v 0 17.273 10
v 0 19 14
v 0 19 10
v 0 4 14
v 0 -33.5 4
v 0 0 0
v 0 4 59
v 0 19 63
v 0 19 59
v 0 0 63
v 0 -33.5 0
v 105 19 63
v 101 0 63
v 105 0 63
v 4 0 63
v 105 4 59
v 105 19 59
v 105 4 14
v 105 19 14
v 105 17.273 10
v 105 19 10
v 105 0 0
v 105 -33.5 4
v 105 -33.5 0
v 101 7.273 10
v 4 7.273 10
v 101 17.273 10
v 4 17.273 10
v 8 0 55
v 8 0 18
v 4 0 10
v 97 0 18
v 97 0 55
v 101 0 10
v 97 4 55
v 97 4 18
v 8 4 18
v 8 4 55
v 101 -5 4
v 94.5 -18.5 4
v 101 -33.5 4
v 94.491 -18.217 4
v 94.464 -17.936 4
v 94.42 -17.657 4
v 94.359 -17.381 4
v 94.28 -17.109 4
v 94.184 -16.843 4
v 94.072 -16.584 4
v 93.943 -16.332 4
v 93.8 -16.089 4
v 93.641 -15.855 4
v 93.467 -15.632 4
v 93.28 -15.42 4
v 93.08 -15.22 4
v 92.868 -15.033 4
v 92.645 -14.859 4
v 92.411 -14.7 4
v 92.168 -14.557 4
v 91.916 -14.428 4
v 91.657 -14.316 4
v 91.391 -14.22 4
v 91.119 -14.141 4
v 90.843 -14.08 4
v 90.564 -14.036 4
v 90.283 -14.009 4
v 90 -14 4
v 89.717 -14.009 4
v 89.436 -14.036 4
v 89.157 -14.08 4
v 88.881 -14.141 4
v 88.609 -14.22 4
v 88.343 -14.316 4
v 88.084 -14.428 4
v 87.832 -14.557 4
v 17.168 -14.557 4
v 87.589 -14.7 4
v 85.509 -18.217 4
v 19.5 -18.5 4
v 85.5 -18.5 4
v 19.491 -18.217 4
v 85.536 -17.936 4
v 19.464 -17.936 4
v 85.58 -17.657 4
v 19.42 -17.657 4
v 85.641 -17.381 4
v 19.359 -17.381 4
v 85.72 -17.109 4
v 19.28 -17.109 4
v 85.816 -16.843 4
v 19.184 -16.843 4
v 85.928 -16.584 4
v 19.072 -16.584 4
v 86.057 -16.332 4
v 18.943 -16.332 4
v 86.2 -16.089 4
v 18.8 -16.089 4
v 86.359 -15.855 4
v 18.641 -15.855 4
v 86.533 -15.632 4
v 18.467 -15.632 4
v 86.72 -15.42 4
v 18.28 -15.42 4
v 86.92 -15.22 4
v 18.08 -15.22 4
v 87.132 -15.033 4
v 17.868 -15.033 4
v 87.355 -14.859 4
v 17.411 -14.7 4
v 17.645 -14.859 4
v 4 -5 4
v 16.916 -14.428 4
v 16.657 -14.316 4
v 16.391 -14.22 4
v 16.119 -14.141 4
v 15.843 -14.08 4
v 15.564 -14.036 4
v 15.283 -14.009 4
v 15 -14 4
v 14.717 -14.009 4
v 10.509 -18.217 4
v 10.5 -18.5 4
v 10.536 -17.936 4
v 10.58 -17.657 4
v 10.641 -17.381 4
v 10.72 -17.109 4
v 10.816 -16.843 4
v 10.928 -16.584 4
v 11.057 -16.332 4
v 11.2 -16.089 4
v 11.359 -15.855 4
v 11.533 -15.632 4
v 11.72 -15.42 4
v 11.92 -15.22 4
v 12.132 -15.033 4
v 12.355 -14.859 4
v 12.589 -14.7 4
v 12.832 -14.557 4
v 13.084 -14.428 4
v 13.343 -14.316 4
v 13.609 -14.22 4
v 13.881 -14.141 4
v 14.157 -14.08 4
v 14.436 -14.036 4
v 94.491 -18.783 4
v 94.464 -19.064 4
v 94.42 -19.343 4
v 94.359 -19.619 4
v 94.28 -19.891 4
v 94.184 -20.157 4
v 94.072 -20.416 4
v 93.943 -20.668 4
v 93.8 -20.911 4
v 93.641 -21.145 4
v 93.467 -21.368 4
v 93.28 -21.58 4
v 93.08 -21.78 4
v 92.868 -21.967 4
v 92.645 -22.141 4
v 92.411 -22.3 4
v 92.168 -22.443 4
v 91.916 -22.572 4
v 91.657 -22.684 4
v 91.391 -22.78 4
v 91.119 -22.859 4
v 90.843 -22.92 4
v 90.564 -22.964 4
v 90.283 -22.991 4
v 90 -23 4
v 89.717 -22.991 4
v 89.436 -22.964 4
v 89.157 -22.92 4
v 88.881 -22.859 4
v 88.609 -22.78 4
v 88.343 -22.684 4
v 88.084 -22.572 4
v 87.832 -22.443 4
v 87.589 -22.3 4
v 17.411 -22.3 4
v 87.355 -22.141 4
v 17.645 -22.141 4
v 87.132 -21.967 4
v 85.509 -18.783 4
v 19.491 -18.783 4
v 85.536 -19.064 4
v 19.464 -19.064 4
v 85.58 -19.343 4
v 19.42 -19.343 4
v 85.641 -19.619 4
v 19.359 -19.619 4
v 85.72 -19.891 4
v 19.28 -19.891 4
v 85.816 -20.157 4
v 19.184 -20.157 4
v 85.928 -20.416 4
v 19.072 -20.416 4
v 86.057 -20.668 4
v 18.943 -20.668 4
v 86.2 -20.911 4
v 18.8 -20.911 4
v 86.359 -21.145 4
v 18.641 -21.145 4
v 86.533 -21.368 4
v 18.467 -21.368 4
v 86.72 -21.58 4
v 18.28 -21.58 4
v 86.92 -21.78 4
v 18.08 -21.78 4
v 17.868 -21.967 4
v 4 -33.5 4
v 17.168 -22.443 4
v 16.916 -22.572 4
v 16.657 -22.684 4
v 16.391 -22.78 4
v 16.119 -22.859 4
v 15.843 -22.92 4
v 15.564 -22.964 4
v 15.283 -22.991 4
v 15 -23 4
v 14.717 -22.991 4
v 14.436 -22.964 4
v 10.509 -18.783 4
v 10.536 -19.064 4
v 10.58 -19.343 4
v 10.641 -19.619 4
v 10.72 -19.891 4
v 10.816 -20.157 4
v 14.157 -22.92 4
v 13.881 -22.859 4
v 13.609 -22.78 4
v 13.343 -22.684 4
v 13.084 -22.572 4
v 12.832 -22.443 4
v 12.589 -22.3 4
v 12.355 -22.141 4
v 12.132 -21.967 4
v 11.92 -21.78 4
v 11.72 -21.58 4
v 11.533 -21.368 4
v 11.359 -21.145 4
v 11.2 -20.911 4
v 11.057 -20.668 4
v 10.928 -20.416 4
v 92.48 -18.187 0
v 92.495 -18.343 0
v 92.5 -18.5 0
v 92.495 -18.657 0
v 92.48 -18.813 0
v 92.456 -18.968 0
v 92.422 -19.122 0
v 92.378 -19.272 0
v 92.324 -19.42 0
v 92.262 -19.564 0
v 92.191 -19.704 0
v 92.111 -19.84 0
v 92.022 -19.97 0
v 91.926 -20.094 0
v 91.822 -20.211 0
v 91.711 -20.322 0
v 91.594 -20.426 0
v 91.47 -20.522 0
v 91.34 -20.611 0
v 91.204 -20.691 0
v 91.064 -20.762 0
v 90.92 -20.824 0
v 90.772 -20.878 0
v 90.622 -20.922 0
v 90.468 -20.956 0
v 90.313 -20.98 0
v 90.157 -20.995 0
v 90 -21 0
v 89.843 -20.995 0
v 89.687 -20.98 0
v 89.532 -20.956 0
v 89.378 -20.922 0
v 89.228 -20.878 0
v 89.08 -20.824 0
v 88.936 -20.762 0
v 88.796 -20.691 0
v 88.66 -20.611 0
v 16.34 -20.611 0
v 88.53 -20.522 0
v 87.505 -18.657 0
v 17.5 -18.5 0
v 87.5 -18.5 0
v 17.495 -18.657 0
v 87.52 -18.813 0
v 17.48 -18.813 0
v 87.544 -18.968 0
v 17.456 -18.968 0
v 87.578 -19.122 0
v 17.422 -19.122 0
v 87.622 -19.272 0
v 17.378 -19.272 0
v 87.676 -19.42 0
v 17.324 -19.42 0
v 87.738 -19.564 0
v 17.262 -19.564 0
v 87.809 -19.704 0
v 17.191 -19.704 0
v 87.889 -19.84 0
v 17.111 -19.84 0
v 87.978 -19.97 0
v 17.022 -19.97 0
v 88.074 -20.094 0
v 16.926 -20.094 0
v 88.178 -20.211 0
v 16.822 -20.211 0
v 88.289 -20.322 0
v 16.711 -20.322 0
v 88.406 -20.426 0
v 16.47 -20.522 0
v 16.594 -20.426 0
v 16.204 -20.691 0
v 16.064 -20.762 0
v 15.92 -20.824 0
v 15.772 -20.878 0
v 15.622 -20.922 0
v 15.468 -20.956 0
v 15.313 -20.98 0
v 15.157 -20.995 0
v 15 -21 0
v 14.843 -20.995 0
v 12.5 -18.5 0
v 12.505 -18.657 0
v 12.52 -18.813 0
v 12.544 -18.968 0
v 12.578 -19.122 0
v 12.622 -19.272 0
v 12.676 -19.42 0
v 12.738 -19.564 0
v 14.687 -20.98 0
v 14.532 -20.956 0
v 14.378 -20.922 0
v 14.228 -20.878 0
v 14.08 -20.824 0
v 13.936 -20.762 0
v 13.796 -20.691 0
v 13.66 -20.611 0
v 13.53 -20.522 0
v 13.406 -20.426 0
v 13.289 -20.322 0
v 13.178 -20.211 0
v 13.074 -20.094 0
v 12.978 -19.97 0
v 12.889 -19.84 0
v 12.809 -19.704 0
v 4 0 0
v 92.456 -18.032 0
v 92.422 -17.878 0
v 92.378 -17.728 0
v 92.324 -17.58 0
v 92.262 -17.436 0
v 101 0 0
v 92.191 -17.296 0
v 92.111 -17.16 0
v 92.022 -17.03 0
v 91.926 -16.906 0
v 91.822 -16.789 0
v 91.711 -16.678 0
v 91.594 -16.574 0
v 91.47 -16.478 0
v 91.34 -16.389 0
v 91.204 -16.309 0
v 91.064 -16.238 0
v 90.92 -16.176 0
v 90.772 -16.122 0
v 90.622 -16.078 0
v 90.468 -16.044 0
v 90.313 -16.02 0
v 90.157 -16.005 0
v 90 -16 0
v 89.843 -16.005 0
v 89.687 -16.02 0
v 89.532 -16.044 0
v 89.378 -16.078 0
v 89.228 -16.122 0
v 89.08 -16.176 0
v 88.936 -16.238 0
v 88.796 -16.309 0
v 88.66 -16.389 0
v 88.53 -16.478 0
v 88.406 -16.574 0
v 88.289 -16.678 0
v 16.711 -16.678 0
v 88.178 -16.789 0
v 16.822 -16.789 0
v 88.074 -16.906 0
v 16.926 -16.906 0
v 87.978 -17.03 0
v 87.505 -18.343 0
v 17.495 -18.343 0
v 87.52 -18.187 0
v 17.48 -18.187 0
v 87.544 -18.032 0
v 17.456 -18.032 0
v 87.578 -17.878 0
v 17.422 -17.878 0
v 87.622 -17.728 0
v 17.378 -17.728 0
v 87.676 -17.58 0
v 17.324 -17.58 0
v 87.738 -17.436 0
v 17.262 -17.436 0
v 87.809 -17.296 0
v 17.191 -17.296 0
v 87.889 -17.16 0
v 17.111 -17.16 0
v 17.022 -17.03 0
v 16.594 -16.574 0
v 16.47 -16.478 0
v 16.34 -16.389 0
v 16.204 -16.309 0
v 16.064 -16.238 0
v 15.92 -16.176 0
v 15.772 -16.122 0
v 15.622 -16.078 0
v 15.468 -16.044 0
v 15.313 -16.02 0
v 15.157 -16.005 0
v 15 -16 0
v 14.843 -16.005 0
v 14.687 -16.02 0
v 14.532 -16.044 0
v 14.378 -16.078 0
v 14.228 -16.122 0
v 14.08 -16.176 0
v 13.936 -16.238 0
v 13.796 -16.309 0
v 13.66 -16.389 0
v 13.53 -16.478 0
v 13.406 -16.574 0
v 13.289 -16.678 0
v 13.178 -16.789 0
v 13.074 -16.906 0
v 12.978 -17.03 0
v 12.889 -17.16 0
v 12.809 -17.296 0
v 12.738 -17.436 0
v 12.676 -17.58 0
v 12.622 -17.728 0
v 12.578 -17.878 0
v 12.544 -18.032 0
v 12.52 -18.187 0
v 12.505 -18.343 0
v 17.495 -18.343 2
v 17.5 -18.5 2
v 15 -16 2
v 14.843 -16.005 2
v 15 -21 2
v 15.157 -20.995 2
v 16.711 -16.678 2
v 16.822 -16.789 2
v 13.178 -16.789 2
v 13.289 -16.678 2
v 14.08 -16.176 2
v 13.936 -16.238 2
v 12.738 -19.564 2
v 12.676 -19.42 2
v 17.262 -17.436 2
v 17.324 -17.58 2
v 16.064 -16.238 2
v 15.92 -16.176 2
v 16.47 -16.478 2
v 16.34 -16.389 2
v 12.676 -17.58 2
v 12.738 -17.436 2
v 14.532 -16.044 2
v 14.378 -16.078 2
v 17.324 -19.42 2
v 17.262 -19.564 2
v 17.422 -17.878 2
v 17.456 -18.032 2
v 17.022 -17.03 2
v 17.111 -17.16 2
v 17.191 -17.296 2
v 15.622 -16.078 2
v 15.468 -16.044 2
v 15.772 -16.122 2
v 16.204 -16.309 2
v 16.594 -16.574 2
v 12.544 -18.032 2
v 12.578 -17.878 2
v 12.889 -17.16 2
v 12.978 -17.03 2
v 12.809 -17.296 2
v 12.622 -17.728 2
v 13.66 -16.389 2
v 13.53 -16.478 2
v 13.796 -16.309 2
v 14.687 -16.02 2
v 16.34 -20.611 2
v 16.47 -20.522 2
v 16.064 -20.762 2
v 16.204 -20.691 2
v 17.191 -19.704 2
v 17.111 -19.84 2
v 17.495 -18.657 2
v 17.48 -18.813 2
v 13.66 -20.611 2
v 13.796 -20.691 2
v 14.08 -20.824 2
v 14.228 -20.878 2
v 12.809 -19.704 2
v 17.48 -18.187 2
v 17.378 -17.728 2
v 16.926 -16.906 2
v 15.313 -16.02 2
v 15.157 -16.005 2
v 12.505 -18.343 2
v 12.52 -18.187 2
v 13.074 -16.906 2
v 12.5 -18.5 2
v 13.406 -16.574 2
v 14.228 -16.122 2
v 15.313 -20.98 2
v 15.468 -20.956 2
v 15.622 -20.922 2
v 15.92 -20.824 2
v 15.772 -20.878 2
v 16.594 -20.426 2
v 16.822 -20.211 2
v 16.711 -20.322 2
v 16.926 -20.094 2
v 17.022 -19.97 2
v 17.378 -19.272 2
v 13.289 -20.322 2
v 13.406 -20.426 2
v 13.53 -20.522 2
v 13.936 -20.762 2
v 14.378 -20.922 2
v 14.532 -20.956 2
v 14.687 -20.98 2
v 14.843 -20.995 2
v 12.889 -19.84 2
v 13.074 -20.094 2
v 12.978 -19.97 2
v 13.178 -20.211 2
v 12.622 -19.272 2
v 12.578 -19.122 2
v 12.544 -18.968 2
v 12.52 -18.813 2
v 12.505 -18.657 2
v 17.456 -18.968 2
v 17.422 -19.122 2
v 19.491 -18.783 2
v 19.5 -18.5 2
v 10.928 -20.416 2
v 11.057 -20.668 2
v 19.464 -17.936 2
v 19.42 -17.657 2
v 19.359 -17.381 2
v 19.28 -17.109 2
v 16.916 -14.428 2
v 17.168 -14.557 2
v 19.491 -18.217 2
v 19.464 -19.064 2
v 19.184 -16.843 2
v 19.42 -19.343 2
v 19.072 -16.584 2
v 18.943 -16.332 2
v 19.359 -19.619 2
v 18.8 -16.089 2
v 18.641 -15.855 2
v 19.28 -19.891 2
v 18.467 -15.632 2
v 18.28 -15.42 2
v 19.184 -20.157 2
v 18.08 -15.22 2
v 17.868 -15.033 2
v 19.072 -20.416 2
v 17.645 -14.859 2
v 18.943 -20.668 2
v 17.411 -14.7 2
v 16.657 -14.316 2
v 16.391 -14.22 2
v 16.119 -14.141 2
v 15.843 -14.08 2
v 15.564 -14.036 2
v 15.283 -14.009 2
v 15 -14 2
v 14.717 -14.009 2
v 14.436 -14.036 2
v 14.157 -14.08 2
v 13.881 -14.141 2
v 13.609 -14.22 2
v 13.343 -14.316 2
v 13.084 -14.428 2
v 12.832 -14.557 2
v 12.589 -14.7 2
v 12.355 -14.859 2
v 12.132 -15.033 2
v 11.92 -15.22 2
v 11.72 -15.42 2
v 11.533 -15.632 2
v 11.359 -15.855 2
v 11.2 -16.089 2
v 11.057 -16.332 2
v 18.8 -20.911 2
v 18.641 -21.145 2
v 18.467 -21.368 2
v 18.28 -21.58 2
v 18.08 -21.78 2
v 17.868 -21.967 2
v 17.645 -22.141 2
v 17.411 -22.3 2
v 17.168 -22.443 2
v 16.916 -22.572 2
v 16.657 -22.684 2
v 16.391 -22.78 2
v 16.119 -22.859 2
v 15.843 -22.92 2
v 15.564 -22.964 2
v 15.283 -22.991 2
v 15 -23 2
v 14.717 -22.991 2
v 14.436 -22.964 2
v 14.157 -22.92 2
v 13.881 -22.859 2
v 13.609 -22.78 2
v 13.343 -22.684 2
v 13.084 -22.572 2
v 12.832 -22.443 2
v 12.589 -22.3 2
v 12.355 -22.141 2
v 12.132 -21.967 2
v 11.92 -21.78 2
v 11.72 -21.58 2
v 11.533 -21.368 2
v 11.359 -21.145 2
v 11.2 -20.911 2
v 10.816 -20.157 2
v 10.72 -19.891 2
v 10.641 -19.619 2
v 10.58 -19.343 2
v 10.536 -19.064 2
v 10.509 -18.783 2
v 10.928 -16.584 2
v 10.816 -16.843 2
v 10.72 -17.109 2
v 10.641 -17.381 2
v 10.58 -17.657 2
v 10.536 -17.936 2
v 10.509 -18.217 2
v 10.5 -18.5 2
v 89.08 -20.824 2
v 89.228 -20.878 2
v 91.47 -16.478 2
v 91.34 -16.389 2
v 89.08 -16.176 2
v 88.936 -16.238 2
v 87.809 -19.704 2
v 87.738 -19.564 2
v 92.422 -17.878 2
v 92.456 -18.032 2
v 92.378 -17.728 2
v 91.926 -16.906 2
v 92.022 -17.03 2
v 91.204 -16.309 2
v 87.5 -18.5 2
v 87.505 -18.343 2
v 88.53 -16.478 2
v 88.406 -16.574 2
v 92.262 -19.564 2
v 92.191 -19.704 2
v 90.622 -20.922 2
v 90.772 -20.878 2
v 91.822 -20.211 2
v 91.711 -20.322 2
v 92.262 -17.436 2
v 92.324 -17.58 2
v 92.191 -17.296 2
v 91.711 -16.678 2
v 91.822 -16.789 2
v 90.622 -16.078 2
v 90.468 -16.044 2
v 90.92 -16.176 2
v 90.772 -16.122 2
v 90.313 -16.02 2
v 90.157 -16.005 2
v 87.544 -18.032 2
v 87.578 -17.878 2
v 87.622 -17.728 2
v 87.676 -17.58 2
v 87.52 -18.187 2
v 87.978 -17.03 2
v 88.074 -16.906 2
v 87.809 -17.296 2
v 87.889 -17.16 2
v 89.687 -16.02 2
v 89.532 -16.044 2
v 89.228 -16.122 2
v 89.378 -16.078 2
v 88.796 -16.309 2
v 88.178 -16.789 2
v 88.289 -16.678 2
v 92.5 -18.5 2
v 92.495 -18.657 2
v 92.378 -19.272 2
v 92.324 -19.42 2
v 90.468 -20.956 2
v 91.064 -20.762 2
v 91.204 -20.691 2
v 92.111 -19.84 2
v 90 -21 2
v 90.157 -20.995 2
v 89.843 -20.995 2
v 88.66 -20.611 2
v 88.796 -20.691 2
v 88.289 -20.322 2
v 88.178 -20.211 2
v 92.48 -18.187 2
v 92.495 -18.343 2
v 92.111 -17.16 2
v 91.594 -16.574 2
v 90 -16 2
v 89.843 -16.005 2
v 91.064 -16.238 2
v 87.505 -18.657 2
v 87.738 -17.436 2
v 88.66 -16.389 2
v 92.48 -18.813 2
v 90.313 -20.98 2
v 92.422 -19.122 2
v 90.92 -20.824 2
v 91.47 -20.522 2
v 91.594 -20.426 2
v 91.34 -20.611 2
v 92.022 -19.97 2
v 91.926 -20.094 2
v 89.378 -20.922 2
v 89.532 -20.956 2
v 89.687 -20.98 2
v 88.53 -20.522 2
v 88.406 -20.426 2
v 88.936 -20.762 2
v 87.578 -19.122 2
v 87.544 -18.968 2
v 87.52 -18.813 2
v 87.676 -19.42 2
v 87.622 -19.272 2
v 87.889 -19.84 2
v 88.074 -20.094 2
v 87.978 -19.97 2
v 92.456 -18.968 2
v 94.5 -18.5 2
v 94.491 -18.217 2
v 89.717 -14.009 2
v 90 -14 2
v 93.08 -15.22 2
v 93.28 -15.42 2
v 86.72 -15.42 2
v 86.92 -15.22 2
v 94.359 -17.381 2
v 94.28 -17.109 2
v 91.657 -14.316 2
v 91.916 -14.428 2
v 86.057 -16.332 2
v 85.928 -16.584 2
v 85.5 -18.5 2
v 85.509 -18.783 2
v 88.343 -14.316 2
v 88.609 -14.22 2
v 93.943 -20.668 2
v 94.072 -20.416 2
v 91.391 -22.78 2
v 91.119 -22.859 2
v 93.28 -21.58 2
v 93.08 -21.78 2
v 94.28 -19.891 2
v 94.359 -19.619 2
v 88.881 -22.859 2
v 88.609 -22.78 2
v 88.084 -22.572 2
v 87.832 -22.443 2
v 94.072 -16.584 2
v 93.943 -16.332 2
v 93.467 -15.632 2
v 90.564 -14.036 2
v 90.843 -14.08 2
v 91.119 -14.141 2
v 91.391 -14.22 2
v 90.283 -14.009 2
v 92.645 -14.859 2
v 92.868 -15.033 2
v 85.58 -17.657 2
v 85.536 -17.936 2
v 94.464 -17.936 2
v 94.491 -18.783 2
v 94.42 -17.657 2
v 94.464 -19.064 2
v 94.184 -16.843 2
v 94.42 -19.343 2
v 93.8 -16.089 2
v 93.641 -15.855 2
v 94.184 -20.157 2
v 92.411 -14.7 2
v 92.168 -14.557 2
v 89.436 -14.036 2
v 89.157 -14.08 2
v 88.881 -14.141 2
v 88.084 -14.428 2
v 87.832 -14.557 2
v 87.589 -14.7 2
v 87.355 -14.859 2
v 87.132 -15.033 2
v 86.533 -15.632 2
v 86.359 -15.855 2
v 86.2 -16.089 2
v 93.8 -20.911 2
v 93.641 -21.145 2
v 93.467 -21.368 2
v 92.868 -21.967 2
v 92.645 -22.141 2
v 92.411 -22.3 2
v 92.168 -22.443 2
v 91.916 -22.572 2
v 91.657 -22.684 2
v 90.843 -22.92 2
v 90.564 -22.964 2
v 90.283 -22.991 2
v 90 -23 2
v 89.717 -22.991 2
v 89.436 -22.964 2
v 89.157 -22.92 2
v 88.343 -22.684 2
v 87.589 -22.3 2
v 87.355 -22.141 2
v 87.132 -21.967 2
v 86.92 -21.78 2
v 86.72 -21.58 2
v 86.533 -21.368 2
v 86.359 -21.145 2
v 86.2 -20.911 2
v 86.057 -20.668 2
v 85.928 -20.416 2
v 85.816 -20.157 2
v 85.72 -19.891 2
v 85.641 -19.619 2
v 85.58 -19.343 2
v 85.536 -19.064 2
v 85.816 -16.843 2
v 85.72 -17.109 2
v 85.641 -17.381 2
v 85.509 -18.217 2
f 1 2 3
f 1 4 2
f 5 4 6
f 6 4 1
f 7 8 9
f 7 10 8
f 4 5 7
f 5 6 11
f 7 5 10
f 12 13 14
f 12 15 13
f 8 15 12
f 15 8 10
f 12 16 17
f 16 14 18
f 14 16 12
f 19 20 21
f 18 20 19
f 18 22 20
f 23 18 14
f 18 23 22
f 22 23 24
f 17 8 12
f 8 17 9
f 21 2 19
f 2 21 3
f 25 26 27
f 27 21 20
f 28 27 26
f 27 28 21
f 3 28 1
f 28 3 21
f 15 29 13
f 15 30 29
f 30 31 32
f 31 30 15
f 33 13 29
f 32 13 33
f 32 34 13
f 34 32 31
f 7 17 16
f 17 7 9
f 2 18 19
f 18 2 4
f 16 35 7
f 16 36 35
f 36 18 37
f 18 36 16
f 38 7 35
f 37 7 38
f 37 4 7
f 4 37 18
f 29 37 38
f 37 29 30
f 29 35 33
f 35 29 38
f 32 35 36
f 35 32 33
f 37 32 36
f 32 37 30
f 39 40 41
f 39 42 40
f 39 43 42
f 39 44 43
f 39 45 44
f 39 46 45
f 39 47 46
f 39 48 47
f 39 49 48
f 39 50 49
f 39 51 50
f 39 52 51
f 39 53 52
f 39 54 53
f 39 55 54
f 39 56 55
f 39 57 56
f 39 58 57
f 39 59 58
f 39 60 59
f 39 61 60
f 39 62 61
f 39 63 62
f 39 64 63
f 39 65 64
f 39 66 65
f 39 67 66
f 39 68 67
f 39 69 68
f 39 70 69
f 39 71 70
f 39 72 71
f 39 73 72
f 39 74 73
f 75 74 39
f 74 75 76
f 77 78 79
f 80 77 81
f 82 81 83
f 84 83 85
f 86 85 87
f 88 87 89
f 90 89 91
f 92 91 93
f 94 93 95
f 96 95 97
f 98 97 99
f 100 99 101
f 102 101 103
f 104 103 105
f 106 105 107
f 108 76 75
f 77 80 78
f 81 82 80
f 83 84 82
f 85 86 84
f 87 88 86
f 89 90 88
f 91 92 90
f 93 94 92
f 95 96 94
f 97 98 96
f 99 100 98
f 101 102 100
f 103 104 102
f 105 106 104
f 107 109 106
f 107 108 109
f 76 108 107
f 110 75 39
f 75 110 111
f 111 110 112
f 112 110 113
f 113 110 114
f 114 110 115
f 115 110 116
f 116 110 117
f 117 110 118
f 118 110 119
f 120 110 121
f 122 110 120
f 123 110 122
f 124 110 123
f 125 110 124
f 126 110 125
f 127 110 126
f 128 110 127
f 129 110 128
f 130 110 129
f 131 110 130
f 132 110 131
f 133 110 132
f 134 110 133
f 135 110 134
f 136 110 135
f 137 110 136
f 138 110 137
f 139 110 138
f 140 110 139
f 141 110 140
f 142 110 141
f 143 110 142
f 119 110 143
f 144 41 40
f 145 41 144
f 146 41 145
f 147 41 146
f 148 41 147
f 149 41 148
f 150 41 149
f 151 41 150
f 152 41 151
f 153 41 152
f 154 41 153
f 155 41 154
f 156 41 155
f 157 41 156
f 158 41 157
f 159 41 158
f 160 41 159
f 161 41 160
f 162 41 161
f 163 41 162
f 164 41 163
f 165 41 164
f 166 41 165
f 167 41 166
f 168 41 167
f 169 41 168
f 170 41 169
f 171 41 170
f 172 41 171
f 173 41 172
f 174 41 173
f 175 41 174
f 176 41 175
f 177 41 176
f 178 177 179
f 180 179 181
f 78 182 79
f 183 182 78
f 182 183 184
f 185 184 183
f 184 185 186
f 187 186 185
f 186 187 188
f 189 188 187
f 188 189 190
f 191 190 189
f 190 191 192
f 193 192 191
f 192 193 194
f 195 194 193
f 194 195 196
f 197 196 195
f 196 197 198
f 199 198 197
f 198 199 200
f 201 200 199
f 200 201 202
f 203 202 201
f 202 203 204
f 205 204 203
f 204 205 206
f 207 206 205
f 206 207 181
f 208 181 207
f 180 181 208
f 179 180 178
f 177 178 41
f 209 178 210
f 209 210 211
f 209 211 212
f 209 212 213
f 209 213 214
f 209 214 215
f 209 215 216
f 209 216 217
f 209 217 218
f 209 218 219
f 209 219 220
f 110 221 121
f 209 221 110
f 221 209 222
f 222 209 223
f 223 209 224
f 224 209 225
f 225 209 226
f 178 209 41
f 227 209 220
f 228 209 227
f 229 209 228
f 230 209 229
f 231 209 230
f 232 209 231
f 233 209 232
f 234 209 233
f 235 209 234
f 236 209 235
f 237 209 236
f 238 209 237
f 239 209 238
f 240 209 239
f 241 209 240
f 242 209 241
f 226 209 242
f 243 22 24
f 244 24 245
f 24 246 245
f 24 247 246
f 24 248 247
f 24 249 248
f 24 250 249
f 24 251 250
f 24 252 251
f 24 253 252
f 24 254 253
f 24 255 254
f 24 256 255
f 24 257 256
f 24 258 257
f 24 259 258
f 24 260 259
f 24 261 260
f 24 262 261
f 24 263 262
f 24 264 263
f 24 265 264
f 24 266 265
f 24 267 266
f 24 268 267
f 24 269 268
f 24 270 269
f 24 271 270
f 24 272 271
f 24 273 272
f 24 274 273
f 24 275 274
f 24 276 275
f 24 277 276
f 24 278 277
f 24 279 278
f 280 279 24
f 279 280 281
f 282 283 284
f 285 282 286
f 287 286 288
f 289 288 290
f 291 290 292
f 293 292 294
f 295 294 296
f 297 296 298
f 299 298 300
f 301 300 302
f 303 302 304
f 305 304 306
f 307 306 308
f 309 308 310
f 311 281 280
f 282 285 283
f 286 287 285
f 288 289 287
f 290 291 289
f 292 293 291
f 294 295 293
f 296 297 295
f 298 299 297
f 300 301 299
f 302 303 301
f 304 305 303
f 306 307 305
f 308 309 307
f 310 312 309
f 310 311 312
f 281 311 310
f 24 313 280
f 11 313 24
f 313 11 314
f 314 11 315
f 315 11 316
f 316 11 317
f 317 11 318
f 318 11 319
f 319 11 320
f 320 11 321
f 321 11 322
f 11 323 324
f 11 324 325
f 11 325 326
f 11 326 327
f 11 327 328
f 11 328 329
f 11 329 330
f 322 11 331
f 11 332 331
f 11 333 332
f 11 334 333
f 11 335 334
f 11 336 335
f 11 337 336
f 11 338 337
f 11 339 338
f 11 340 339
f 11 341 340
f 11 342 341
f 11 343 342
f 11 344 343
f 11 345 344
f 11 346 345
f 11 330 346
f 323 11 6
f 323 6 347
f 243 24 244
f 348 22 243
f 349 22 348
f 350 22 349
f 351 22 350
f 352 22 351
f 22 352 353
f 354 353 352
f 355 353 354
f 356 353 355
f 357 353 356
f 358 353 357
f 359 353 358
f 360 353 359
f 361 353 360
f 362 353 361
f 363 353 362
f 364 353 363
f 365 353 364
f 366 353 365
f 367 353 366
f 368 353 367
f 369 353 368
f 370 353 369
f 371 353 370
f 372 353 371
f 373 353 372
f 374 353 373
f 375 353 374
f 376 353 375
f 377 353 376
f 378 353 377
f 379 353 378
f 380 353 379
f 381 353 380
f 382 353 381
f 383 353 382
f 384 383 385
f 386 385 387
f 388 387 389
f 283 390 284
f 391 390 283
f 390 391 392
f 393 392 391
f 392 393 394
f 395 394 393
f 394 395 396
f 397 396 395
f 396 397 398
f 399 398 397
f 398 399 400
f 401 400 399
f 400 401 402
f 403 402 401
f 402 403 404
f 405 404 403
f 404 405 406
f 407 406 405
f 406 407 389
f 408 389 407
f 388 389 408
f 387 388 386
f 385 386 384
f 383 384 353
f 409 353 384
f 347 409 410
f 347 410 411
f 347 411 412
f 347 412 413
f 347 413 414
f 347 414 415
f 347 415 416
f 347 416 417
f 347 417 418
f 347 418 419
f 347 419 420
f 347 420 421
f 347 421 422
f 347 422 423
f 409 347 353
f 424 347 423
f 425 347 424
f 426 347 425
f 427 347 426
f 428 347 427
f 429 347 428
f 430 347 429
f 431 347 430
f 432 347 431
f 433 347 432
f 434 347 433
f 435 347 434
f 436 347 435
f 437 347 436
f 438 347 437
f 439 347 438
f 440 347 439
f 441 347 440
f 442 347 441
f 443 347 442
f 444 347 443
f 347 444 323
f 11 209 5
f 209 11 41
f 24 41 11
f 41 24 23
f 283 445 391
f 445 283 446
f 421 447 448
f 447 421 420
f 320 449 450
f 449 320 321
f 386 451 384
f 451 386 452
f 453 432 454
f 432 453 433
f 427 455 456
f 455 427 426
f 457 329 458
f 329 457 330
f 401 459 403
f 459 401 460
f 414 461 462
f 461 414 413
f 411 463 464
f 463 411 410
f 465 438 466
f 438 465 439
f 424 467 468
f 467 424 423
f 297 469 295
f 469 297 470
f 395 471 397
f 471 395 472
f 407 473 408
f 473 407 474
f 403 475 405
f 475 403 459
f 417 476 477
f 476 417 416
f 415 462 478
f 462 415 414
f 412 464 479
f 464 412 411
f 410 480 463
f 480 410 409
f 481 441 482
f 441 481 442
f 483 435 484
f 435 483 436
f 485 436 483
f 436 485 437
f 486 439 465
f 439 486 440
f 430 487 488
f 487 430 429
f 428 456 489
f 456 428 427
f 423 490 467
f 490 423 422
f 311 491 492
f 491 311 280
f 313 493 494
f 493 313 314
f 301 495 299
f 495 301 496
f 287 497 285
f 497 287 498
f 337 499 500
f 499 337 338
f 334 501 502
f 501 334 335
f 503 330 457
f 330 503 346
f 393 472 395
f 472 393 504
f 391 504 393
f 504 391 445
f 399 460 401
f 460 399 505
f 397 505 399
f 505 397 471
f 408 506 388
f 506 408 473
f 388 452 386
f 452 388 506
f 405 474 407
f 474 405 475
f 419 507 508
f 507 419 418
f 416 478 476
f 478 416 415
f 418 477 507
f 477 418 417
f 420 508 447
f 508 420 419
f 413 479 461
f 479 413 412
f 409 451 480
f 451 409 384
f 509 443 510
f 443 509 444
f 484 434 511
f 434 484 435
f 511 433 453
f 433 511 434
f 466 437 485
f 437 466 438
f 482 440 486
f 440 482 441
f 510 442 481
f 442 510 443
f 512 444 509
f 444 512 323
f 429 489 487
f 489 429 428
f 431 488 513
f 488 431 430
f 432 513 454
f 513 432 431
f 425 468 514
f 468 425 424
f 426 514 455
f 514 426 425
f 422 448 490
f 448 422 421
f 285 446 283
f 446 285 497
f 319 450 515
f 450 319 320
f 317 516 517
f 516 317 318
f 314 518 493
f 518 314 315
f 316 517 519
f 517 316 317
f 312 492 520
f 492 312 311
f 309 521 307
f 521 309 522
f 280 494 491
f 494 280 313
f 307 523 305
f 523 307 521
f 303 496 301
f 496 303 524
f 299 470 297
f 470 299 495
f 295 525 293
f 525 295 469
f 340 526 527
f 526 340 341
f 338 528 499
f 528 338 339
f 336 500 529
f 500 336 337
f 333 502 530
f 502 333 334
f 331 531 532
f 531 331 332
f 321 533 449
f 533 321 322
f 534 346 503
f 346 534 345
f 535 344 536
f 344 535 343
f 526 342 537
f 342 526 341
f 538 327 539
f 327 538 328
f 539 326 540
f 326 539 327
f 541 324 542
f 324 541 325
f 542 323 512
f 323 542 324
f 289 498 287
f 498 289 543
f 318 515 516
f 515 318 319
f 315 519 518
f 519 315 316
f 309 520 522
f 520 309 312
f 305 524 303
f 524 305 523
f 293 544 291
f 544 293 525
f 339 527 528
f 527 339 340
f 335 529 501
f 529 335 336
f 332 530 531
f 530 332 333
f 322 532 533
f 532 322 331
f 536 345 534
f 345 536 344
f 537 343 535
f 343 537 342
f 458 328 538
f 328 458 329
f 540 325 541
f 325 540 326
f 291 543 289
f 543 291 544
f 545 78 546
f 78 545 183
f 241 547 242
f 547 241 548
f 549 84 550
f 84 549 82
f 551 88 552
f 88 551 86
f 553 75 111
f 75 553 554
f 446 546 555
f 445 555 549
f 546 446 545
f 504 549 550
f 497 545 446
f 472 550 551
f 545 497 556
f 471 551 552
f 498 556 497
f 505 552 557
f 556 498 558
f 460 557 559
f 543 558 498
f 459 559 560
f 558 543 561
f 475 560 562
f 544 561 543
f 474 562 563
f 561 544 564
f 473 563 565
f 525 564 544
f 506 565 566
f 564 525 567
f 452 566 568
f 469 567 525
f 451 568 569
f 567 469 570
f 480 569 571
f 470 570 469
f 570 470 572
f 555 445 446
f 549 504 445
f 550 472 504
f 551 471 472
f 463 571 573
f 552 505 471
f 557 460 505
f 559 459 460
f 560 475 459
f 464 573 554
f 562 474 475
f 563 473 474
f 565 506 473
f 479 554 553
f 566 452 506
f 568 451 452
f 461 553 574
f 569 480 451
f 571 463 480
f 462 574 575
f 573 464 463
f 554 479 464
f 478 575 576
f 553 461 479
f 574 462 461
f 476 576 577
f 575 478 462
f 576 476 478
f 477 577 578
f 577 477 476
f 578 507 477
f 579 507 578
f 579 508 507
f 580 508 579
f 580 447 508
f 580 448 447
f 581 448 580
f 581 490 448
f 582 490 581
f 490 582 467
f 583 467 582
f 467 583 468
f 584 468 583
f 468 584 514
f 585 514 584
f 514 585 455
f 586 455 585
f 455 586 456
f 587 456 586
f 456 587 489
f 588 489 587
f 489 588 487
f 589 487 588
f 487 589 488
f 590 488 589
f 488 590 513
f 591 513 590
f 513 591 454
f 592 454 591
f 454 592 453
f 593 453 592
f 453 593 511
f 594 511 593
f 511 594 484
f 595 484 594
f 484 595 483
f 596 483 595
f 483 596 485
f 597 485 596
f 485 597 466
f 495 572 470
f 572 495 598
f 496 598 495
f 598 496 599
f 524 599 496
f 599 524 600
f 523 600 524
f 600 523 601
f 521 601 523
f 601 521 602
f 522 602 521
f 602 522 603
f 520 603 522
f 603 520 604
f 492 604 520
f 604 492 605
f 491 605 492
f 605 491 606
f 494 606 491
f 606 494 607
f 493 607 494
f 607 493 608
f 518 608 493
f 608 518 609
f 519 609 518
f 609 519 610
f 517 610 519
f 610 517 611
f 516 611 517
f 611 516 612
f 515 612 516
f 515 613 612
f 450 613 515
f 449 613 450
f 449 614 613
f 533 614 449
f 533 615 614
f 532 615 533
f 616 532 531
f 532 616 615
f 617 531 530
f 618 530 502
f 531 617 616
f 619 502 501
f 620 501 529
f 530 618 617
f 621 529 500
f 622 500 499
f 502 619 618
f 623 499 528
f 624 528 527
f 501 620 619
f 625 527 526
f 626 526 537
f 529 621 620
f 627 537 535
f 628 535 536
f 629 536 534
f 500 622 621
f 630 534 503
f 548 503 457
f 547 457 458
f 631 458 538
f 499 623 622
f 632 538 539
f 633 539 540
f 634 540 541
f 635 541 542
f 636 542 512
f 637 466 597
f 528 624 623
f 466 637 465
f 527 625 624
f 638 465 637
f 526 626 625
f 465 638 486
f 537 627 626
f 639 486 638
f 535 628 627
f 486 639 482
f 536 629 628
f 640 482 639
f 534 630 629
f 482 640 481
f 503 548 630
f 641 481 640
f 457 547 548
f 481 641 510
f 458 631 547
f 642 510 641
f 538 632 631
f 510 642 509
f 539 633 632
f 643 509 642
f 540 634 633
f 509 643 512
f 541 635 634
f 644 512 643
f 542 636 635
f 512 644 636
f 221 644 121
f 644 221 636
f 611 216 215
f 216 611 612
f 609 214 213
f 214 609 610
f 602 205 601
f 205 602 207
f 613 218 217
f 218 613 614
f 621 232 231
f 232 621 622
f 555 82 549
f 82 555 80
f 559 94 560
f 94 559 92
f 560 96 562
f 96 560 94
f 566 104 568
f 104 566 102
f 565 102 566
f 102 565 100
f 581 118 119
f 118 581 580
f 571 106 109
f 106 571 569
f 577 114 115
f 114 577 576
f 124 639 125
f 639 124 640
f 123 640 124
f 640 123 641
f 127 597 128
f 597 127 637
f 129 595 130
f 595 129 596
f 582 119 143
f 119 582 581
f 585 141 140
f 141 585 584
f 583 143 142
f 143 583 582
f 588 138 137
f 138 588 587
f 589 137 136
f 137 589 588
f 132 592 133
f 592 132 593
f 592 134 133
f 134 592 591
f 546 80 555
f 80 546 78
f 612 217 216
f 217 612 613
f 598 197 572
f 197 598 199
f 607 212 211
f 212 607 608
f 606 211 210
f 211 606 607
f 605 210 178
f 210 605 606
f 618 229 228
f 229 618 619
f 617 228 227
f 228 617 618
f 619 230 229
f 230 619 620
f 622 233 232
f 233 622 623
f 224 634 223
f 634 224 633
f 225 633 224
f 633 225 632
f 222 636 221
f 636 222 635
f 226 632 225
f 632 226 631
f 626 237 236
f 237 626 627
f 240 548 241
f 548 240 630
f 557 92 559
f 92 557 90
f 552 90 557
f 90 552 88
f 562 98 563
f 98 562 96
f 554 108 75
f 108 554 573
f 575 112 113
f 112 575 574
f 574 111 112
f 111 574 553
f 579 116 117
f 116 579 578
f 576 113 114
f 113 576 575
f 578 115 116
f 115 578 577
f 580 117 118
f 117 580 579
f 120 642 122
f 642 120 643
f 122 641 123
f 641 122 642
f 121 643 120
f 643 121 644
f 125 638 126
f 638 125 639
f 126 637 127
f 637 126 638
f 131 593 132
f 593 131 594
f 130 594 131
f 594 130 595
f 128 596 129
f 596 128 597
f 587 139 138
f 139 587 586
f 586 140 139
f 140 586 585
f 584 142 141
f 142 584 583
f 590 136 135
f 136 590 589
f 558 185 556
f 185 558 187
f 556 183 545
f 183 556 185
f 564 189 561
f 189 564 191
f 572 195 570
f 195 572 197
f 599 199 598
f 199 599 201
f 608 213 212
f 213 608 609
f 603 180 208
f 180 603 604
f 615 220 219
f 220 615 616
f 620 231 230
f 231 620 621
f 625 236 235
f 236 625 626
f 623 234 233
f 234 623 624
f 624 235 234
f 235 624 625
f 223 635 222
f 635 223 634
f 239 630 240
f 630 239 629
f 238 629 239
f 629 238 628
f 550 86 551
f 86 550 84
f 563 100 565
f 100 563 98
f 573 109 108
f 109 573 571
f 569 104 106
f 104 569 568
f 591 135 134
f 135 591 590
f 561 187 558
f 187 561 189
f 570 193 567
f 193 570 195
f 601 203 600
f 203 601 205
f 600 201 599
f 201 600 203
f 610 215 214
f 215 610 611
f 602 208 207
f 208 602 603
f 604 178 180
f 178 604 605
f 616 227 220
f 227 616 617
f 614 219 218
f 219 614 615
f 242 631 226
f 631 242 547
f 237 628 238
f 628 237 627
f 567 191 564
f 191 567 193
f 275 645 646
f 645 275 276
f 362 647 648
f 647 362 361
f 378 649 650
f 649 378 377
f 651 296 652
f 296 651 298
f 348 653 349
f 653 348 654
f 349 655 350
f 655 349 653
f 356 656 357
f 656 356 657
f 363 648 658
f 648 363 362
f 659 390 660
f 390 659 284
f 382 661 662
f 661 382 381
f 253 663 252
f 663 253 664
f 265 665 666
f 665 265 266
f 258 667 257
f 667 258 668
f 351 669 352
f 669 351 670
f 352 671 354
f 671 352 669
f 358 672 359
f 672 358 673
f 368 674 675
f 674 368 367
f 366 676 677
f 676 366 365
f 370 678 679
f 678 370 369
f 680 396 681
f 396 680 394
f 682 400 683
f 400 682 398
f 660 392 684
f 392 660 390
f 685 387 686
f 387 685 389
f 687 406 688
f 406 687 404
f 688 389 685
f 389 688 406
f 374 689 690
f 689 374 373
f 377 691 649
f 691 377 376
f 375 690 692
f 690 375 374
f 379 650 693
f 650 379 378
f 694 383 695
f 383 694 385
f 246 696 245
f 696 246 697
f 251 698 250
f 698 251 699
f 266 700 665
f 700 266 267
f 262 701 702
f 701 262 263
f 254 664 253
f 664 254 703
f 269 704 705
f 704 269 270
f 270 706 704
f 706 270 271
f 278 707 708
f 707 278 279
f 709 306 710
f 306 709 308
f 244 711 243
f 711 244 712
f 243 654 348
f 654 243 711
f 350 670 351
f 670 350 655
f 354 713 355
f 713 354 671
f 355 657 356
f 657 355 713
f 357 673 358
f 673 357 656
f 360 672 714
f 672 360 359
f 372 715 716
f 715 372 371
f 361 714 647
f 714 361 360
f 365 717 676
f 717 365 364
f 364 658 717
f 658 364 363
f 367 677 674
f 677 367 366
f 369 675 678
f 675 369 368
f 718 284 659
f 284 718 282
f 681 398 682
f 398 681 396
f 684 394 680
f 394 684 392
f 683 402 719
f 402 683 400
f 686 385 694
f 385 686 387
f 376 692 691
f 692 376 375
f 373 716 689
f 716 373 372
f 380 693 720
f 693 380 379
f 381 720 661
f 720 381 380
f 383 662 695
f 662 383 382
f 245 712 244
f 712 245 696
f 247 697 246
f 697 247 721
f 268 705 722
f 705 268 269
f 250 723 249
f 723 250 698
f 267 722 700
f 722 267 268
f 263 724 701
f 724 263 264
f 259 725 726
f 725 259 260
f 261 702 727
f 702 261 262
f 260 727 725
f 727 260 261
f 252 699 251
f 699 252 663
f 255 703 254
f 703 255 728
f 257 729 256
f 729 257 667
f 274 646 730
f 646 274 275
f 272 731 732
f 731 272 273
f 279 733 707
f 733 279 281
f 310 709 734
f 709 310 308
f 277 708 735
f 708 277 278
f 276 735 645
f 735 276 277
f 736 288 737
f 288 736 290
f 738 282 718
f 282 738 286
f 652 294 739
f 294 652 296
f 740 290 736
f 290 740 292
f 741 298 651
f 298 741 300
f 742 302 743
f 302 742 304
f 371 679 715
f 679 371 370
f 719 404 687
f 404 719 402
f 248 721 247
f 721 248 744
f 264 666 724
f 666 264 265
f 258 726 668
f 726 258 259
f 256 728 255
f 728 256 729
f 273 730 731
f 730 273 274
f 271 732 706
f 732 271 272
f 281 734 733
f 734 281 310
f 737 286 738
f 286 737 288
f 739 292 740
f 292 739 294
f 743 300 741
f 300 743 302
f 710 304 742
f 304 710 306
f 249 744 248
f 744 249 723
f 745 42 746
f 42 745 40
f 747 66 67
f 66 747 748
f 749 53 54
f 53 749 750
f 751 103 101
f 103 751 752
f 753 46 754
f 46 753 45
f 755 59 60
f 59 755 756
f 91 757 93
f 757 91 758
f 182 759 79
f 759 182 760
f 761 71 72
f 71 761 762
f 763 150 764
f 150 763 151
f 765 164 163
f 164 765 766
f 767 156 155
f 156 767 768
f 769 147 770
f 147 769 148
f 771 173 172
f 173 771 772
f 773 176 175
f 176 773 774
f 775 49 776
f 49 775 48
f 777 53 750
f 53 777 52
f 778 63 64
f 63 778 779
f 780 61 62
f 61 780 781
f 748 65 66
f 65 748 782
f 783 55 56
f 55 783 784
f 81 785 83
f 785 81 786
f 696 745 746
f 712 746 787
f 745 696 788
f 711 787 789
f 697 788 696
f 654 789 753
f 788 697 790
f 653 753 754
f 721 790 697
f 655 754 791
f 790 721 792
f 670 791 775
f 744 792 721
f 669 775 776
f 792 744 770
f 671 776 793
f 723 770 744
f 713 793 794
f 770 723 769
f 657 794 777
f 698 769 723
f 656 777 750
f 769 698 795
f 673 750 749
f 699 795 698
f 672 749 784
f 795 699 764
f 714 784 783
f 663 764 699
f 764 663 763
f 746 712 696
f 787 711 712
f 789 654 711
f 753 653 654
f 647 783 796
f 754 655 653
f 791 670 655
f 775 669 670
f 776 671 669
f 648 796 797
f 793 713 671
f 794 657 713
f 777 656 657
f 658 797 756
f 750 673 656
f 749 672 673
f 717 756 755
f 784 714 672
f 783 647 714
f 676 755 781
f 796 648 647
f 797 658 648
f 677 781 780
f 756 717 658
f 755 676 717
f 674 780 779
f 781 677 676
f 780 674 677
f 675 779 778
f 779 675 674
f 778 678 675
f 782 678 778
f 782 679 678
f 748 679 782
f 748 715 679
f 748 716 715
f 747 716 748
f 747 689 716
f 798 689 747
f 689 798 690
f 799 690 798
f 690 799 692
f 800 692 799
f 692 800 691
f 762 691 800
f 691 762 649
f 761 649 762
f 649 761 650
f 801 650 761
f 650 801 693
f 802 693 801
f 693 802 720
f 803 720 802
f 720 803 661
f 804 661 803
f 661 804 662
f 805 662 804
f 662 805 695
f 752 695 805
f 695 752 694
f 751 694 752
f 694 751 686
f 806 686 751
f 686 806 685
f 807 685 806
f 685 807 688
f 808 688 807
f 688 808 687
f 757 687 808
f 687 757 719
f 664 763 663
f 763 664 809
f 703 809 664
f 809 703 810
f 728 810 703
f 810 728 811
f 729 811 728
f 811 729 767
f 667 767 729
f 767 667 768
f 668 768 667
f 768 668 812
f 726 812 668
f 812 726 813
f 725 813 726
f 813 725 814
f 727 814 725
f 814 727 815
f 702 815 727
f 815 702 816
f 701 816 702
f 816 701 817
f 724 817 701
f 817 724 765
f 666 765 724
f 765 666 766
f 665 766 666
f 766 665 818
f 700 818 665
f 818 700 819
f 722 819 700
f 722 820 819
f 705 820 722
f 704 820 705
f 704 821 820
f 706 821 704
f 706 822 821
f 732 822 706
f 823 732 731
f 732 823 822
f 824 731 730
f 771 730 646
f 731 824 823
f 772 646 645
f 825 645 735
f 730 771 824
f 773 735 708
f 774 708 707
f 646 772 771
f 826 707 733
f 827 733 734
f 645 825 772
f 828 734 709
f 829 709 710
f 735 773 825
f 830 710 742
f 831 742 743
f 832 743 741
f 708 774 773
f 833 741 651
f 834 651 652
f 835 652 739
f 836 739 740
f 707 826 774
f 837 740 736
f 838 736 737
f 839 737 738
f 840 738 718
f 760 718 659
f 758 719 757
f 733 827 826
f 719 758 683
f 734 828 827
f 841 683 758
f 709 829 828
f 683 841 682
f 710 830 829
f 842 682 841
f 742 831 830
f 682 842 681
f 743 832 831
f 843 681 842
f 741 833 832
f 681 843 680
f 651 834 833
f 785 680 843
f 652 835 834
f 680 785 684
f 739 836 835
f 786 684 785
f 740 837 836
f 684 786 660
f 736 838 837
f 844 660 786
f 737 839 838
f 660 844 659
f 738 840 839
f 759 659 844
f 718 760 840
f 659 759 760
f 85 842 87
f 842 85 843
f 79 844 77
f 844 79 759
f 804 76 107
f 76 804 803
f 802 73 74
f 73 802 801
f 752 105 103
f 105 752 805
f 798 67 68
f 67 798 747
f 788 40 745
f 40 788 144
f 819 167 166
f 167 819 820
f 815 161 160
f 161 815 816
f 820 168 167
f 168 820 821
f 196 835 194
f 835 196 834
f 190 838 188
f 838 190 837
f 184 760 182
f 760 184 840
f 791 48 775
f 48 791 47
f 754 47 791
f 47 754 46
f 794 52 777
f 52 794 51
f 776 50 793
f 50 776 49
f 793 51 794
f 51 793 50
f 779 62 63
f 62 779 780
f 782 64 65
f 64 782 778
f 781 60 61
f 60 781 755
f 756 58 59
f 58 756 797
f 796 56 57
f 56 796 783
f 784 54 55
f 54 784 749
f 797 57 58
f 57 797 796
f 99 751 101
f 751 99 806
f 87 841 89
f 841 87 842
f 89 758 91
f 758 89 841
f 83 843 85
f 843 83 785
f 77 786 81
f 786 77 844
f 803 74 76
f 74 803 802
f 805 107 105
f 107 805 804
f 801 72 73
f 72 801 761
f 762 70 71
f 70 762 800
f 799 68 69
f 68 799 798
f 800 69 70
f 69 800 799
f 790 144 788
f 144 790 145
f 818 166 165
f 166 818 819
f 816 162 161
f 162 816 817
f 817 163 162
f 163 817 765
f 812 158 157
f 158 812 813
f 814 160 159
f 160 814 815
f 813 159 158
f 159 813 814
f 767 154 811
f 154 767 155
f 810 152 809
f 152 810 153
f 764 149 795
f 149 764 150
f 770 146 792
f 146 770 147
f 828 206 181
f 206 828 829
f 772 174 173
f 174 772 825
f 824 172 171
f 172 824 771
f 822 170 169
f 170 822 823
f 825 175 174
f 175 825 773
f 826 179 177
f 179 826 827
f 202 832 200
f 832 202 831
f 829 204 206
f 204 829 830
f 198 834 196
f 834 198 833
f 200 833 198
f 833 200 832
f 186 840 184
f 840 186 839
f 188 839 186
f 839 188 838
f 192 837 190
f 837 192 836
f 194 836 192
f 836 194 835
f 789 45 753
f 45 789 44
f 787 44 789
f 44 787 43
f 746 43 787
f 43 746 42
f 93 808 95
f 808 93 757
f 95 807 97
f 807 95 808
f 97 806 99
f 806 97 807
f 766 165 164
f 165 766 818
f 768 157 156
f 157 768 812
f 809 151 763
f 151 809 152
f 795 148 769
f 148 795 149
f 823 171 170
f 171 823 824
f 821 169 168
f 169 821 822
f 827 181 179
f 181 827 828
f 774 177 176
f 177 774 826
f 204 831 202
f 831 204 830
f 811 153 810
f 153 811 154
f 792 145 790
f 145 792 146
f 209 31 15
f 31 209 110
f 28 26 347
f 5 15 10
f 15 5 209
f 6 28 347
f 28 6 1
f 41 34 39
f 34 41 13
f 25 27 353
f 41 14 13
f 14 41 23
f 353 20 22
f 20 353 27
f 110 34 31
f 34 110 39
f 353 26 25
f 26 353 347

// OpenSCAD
// Rough drawing of bracket shape I'm trying to make
//
//    -----
//    |    \
//    ---   \
//      |    \
//      |     \
//    ---      \
//    |        |
//    ---      |
//       \     |
//        \    |
//        |    ----
//        |       |
//        ---------

LEVITON_HOLE_SPACING_VERT = 25;
LEVITON_HOLE_SPACING_HORZ = 75;
LEVITON_HOLE_DIA = 5;
LEVITON_HOLE_HEIGHT = 2;

BRACKET_THICKNESS = 4;
BRACKET_GRABBER_LEN = 15;
BRACKET_WIDTH = LEVITON_HOLE_SPACING_HORZ + 15 * 2;

SWITCH_LEVITATE_HEIGHT = 10;
SWITCH_HEIGHT = 45;
SWITCH_WIDTH = 150;

module AngleBracket(bracketToHoleDist)
{
   linear_extrude(BRACKET_THICKNESS)
   polygon([ [0,0],
             [-BRACKET_GRABBER_LEN - BRACKET_THICKNESS, SWITCH_LEVITATE_HEIGHT + 1],
             [-1, SWITCH_LEVITATE_HEIGHT + 1],
             [-1, SWITCH_LEVITATE_HEIGHT + SWITCH_HEIGHT + 2 * BRACKET_THICKNESS],
             [0, SWITCH_LEVITATE_HEIGHT + SWITCH_HEIGHT + 2 * BRACKET_THICKNESS],
             [bracketToHoleDist + 15, BRACKET_THICKNESS],
             [bracketToHoleDist + 15, 0] ]);
}

module MiddleSupport()
{
   linear_extrude(BRACKET_WIDTH) 
   polygon([ [0,0],
             [-8, SWITCH_LEVITATE_HEIGHT + 1],
             [0, SWITCH_LEVITATE_HEIGHT + 1],
             [0, SWITCH_LEVITATE_HEIGHT ],
             [5, BRACKET_THICKNESS],
             [5, 0] ]);
}

module Grabber()
{
   
   FULL_GRABBER_HEIGHT = SWITCH_HEIGHT + BRACKET_THICKNESS * 2;

   difference()
   {

      cube([BRACKET_WIDTH,
           BRACKET_GRABBER_LEN + BRACKET_THICKNESS,
           FULL_GRABBER_HEIGHT]);

      translate([-1, BRACKET_THICKNESS, BRACKET_THICKNESS])
      cube([BRACKET_WIDTH + 2,
            SWITCH_HEIGHT,
            FULL_GRABBER_HEIGHT - (BRACKET_THICKNESS * 2)]); 

      translate([2 * BRACKET_THICKNESS,
                 -1,
                 2 * BRACKET_THICKNESS])
      cube([BRACKET_WIDTH - 4 * BRACKET_THICKNESS,
            BRACKET_THICKNESS * 2,
            SWITCH_HEIGHT - 2 * BRACKET_THICKNESS]);
            

   }
}

// Holes at 15 mm above bottom of mount
module Mount(bracketLen)
{
   translate([0,-bracketLen, 0])
   difference()
   {
      cube([BRACKET_WIDTH, bracketLen, BRACKET_THICKNESS]);

      translate([15, 15, -1])
      cylinder(h = BRACKET_THICKNESS + 2,d = LEVITON_HOLE_DIA);
      
      translate([15, 15, 2])
      cylinder(h = BRACKET_THICKNESS, d=LEVITON_HOLE_DIA + 4);

      translate([15 + LEVITON_HOLE_SPACING_HORZ, 15, -1])
      cylinder(h = BRACKET_THICKNESS + 2,d = LEVITON_HOLE_DIA);

      translate([15 + LEVITON_HOLE_SPACING_HORZ, 15, 2])
      cylinder(h = BRACKET_THICKNESS + 2,d = LEVITON_HOLE_DIA + 4);
   }
}

module Bracket(distFromHoleToSwitch)
{
   
   translate([0,0,SWITCH_LEVITATE_HEIGHT])
   Grabber();

   translate([BRACKET_THICKNESS, 0, 0])
   rotate(a=90, v=[0,-1,0]) 
   rotate(a=-90, v=[0,0,1])
   AngleBracket(distFromHoleToSwitch - BRACKET_THICKNESS);

   translate([BRACKET_WIDTH, 0, 0])
   rotate(a=90, v=[0,-1,0]) 
   rotate(a=-90, v=[0,0,1])
   AngleBracket(distFromHoleToSwitch - BRACKET_THICKNESS);

   // Middle support if needed
   // I broke my first print in half trying to remove supports, hoping this will make
   // it stronger so it doesn't happen again.
   translate([BRACKET_WIDTH, 0, 0])
   rotate(a=90, v=[0,-1,0]) 
   rotate(a=-90, v=[0,0,1])
   MiddleSupport();

   Mount(distFromHoleToSwitch - BRACKET_THICKNESS + 15);
}

$fn=100;

Bracket(22.5);
